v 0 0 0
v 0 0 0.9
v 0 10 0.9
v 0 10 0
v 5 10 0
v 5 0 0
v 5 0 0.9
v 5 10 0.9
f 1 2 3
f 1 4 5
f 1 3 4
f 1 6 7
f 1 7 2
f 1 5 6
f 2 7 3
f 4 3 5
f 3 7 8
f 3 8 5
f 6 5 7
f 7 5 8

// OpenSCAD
/* Warning, this is a very basic generator with a lot of approximation 
input data : [VFLGA, JVC, 5x10x0.9mm, 64, , A, C04-25352A]
generated by com.zoubworld.electronics.cad.model3d.Basic
Date : Sun Feb 15 10:50:49 CET 2026
*/

//body
color("black")
translate([0,0,0])
cube([5.0,10.0,0.9], center=false);
